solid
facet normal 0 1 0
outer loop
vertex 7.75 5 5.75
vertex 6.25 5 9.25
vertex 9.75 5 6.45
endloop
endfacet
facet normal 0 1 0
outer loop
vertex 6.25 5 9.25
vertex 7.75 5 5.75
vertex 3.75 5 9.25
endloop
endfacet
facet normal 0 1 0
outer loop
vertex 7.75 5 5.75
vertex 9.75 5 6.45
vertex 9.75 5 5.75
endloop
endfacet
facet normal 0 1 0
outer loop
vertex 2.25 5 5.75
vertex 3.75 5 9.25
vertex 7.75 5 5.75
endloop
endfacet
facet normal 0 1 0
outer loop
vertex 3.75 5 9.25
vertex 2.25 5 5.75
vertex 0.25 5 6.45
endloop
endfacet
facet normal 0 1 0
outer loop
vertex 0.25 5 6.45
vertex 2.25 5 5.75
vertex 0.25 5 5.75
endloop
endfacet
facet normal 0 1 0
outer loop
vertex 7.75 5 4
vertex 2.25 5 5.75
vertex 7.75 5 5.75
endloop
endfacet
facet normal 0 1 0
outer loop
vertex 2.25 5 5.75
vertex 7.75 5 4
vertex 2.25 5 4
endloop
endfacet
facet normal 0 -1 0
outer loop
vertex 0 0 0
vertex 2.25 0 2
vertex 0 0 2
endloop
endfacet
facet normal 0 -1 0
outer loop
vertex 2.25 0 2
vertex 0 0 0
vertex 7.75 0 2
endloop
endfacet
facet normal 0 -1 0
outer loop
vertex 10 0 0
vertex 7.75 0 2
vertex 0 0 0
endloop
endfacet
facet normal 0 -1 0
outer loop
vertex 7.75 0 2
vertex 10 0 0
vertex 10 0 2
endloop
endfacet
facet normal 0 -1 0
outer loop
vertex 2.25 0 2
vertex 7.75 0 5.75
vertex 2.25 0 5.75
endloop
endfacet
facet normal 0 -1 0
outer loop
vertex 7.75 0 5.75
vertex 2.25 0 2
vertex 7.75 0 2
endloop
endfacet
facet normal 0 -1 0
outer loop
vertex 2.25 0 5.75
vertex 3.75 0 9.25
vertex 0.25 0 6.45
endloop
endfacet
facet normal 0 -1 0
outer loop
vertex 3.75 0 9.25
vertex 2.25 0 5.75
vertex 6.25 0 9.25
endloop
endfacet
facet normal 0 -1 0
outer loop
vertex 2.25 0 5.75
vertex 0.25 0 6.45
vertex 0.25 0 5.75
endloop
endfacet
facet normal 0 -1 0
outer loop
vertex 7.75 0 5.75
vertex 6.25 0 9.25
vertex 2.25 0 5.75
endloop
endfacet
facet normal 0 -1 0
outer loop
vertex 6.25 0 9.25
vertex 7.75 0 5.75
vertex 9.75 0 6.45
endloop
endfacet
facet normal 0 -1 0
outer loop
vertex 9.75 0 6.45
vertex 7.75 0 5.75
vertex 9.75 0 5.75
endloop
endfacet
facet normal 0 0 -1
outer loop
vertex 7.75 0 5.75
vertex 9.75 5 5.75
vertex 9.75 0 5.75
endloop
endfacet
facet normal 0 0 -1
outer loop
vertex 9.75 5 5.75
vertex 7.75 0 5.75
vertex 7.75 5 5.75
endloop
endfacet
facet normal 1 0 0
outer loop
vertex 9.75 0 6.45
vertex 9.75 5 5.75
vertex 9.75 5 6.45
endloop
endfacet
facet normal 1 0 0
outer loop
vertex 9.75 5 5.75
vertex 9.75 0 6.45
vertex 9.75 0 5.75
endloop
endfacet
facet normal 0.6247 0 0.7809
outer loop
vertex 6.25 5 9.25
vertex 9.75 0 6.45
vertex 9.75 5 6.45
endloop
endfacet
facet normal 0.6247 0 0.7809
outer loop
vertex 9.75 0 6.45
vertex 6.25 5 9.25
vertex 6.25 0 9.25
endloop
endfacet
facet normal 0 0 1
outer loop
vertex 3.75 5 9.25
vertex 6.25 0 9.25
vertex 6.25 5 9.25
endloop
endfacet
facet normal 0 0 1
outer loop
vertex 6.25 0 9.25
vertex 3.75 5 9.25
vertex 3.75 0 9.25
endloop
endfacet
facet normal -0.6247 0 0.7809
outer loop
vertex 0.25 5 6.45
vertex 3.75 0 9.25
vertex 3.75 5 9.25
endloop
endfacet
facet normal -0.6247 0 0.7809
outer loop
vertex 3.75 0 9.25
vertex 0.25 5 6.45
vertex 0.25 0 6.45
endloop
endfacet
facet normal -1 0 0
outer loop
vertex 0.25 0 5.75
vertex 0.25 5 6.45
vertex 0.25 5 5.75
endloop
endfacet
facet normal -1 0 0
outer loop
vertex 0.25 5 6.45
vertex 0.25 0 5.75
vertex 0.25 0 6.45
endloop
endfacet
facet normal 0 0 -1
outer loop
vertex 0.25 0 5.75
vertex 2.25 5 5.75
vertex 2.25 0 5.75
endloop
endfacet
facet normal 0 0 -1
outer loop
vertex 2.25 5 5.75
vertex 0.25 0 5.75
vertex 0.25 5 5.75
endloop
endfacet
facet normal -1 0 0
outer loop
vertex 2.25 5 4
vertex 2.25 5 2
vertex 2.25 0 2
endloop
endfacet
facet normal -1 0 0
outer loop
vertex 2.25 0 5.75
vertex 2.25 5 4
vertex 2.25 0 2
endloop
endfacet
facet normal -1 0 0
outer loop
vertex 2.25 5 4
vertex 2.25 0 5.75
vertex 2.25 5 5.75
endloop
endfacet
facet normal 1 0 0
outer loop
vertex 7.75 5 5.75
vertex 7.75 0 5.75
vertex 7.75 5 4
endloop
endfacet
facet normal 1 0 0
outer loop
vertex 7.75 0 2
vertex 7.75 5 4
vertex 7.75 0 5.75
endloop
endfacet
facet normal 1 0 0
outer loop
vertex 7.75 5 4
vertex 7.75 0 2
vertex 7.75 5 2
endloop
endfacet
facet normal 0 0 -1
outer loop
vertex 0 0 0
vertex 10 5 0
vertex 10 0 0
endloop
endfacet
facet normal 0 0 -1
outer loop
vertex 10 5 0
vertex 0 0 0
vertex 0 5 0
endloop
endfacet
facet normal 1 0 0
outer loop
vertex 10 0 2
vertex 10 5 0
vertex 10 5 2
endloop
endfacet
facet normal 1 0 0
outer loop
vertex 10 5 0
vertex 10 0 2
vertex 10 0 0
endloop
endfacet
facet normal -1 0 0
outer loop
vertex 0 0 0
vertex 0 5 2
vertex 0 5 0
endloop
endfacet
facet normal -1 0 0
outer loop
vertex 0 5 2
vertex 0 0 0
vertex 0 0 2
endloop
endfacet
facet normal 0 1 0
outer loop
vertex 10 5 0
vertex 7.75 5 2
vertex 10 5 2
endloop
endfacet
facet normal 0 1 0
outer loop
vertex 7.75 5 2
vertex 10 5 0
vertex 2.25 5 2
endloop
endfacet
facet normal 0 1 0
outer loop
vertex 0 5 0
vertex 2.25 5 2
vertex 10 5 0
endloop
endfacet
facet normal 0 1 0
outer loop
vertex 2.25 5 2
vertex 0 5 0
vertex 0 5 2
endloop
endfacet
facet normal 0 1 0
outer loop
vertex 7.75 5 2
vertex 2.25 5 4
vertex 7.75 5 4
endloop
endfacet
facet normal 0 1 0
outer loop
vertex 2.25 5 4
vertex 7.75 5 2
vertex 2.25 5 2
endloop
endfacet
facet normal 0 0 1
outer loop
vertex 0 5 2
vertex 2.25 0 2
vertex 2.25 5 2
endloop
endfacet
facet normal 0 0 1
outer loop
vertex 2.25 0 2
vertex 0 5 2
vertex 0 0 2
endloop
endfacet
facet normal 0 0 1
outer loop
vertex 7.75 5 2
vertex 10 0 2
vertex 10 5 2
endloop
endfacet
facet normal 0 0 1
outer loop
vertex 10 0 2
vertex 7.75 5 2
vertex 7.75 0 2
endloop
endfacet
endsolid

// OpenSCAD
module extrude_hook(h, offset = 0.25)
{
  points = [[-3,-3],[3,-3],[3,-1],[5,-1],[5,0.2],[1.5,3],[-1.5,3],[-5,0.2],[-5,-1],[-3,-1]];
  pointsOffset = [[-offset,-offset],[offset,-offset],[offset,-offset],[offset,-offset],[offset,offset],[offset,offset],[-offset,offset],[-offset,offset],[-offset,-offset],[-offset,-offset]];
  
  newPoints = points - pointsOffset;
  
  linear_extrude(height=h)
      polygon(newPoints);
}

union()
{
translate([5,5,6.5])
rotate([90,0,0])
extrude_hook(5);

linear_extrude(2)
square([10,5]);

translate([2.25,0,2])
#linear_extrude(2)
square([5.5,5]);
}
